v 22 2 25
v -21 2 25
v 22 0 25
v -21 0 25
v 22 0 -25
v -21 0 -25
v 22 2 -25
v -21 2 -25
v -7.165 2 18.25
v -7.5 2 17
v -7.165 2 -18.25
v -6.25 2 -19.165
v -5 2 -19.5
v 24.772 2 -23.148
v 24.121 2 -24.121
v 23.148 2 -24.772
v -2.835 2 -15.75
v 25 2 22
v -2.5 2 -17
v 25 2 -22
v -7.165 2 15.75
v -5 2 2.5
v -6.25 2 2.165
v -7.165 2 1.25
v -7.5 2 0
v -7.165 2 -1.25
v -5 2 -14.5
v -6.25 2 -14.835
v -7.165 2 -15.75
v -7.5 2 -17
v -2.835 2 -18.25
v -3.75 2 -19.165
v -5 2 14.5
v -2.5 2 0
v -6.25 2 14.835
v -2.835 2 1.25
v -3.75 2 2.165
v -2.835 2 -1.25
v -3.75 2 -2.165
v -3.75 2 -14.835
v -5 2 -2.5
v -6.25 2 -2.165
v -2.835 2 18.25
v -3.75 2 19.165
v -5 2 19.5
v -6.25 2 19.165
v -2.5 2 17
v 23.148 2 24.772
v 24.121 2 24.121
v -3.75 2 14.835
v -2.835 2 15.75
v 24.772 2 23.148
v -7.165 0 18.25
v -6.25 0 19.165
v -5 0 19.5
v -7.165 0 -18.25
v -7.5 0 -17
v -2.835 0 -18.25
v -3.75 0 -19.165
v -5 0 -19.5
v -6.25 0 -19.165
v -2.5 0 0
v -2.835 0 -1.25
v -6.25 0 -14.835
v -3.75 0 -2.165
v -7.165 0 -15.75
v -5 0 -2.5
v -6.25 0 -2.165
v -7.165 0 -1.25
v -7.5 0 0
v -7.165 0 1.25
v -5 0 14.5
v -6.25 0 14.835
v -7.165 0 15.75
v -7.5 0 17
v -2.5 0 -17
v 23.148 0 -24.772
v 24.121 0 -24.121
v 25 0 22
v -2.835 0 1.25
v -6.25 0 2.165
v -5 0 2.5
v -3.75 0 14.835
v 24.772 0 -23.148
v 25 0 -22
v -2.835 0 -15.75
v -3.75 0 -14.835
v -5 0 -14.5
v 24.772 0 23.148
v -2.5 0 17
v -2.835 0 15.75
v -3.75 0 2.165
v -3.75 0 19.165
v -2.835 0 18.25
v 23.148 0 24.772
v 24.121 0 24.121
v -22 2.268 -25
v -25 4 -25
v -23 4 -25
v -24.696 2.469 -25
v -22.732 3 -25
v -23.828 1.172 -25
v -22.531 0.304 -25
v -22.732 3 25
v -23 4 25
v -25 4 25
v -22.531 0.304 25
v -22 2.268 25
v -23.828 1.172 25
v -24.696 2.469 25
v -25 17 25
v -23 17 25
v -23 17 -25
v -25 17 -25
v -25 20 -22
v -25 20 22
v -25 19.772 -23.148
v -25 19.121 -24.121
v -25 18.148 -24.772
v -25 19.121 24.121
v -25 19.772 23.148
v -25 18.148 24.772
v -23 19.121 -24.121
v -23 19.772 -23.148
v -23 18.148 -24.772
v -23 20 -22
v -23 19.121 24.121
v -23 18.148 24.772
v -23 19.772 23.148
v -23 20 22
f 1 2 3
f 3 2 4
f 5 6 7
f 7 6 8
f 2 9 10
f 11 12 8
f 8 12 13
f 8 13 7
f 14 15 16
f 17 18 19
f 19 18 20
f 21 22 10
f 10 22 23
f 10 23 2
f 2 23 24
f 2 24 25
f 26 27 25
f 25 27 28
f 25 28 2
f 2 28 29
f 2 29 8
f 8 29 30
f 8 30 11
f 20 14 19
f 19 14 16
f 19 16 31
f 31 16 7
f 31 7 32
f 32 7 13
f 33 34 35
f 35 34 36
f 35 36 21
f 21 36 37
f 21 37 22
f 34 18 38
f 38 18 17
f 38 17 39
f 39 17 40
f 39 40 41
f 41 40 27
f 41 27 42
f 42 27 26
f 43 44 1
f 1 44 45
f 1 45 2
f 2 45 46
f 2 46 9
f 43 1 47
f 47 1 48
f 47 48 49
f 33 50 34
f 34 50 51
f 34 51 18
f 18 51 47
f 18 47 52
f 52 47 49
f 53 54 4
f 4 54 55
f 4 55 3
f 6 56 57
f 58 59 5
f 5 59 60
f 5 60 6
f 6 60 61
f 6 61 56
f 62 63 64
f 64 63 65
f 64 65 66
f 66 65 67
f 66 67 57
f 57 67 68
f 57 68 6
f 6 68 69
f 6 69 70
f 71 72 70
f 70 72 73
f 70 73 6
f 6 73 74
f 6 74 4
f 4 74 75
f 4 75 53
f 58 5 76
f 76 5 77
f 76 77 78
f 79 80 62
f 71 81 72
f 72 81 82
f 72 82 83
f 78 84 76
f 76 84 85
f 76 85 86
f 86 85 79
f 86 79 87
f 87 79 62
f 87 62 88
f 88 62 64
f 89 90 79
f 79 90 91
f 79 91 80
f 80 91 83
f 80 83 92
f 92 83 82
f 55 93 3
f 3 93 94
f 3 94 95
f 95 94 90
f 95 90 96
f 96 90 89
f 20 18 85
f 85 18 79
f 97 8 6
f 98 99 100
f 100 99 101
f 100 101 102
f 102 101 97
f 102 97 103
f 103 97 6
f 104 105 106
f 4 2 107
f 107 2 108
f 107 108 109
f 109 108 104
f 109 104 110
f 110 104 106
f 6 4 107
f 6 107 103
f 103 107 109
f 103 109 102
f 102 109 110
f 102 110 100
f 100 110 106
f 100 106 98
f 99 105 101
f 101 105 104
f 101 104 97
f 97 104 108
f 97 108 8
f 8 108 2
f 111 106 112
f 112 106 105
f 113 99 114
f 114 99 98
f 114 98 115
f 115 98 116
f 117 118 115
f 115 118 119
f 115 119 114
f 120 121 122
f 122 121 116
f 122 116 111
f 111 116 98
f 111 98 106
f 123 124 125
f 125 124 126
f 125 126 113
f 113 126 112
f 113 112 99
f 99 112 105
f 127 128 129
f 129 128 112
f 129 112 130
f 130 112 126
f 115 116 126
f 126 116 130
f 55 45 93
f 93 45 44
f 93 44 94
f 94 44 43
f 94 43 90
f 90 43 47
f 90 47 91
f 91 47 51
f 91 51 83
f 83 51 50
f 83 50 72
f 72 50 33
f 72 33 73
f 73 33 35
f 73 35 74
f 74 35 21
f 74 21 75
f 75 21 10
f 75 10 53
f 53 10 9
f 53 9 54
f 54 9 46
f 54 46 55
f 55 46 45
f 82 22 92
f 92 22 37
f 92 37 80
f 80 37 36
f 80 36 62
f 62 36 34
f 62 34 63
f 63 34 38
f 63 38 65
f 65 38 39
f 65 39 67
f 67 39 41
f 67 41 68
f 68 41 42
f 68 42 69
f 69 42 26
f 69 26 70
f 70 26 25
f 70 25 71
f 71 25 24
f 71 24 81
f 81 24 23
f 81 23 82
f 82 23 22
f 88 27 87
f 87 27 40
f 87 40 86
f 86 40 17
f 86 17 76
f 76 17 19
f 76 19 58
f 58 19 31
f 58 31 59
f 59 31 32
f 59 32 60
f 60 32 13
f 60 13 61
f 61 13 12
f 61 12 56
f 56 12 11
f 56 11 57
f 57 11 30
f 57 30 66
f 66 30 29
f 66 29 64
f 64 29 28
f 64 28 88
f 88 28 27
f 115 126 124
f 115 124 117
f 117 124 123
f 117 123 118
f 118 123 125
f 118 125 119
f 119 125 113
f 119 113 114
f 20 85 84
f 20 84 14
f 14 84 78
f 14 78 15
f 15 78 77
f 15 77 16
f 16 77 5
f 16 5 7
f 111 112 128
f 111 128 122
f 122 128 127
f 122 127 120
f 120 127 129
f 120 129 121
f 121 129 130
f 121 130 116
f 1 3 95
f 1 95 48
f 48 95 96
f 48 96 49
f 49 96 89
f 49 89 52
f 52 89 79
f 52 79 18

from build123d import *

# Parameters (mm, degrees)
SKETCH1_W                    = 50
SKETCH1_H                    = 50
BASE_FLANGE1_DEPTH           = 2
EDGE_FLANGE1_STRIP_W         = 12
EDGE_FLANGE1_STRIP_H         = 2
EDGE_FLANGE1_STRIP_CUT_DEPTH = 50
EDGE_FLANGE1_DEPTH           = 50
F_5_0MM_DOWEL_HOLE1_D        = 5
FILLET1_R                    = 3


# Sheet-metal steps are written as plain solids
with BuildPart() as part:
    # Sketch1 → Base-Flange1 (new body)
    with BuildSketch(Plane(origin=(0, 0, 0), x_dir=(1, 0, 0), z_dir=(0, 1, 0))):
        Rectangle(SKETCH1_W, SKETCH1_H)
    extrude(amount=BASE_FLANGE1_DEPTH)

    # Edge-Flange1 strip (across the edge) → Edge-Flange1 strip cut (cut)
    with BuildSketch(Plane(origin=(-25, 2, -25), x_dir=(1, 0, 0), z_dir=(0, 0, 1))):
        with Locations((-2, -1)):
            Rectangle(EDGE_FLANGE1_STRIP_W, EDGE_FLANGE1_STRIP_H)
    extrude(amount=EDGE_FLANGE1_STRIP_CUT_DEPTH, mode=Mode.SUBTRACT)

    # Edge-Flange1 section (across the edge) → Edge-Flange1 (add)
    with BuildSketch(Plane(origin=(-25, 2, -25), x_dir=(1, 0, 0), z_dir=(0, 0, 1))):
        with BuildLine():
            Line((0, 2), (0, 18))
            Line((0, 18), (2, 18))
            Line((2, 18), (2, 2))
            ThreePointArc((2, 2), (2.585786438, 0.585786438), (4, 0))
            Line((4, 0), (4, -2))
            ThreePointArc((4, -2), (1.171572875, -0.828427125), (0, 2))
        make_face()
    extrude(amount=EDGE_FLANGE1_DEPTH)

    # Ø5.0mm Dowel Hole1 (through all)
    with Locations(Plane(origin=(0, 2, 0), x_dir=(1, 0, 0), z_dir=(0, 1, 0))):
        with Locations((-5, 17), (-5, 0), (-5, -17)):
            Hole(F_5_0MM_DOWEL_HOLE1_D / 2)

    # Fillet1
    fillet1_edges = [part.edges().sort_by_distance(p)[0] for p in [
        (-24, 20, -25),
        (-24, 20, 25),
        (25, 1, -25),
        (25, 1, 25),
    ]]
    fillet(fillet1_edges, radius=FILLET1_R)


solid = part.part
